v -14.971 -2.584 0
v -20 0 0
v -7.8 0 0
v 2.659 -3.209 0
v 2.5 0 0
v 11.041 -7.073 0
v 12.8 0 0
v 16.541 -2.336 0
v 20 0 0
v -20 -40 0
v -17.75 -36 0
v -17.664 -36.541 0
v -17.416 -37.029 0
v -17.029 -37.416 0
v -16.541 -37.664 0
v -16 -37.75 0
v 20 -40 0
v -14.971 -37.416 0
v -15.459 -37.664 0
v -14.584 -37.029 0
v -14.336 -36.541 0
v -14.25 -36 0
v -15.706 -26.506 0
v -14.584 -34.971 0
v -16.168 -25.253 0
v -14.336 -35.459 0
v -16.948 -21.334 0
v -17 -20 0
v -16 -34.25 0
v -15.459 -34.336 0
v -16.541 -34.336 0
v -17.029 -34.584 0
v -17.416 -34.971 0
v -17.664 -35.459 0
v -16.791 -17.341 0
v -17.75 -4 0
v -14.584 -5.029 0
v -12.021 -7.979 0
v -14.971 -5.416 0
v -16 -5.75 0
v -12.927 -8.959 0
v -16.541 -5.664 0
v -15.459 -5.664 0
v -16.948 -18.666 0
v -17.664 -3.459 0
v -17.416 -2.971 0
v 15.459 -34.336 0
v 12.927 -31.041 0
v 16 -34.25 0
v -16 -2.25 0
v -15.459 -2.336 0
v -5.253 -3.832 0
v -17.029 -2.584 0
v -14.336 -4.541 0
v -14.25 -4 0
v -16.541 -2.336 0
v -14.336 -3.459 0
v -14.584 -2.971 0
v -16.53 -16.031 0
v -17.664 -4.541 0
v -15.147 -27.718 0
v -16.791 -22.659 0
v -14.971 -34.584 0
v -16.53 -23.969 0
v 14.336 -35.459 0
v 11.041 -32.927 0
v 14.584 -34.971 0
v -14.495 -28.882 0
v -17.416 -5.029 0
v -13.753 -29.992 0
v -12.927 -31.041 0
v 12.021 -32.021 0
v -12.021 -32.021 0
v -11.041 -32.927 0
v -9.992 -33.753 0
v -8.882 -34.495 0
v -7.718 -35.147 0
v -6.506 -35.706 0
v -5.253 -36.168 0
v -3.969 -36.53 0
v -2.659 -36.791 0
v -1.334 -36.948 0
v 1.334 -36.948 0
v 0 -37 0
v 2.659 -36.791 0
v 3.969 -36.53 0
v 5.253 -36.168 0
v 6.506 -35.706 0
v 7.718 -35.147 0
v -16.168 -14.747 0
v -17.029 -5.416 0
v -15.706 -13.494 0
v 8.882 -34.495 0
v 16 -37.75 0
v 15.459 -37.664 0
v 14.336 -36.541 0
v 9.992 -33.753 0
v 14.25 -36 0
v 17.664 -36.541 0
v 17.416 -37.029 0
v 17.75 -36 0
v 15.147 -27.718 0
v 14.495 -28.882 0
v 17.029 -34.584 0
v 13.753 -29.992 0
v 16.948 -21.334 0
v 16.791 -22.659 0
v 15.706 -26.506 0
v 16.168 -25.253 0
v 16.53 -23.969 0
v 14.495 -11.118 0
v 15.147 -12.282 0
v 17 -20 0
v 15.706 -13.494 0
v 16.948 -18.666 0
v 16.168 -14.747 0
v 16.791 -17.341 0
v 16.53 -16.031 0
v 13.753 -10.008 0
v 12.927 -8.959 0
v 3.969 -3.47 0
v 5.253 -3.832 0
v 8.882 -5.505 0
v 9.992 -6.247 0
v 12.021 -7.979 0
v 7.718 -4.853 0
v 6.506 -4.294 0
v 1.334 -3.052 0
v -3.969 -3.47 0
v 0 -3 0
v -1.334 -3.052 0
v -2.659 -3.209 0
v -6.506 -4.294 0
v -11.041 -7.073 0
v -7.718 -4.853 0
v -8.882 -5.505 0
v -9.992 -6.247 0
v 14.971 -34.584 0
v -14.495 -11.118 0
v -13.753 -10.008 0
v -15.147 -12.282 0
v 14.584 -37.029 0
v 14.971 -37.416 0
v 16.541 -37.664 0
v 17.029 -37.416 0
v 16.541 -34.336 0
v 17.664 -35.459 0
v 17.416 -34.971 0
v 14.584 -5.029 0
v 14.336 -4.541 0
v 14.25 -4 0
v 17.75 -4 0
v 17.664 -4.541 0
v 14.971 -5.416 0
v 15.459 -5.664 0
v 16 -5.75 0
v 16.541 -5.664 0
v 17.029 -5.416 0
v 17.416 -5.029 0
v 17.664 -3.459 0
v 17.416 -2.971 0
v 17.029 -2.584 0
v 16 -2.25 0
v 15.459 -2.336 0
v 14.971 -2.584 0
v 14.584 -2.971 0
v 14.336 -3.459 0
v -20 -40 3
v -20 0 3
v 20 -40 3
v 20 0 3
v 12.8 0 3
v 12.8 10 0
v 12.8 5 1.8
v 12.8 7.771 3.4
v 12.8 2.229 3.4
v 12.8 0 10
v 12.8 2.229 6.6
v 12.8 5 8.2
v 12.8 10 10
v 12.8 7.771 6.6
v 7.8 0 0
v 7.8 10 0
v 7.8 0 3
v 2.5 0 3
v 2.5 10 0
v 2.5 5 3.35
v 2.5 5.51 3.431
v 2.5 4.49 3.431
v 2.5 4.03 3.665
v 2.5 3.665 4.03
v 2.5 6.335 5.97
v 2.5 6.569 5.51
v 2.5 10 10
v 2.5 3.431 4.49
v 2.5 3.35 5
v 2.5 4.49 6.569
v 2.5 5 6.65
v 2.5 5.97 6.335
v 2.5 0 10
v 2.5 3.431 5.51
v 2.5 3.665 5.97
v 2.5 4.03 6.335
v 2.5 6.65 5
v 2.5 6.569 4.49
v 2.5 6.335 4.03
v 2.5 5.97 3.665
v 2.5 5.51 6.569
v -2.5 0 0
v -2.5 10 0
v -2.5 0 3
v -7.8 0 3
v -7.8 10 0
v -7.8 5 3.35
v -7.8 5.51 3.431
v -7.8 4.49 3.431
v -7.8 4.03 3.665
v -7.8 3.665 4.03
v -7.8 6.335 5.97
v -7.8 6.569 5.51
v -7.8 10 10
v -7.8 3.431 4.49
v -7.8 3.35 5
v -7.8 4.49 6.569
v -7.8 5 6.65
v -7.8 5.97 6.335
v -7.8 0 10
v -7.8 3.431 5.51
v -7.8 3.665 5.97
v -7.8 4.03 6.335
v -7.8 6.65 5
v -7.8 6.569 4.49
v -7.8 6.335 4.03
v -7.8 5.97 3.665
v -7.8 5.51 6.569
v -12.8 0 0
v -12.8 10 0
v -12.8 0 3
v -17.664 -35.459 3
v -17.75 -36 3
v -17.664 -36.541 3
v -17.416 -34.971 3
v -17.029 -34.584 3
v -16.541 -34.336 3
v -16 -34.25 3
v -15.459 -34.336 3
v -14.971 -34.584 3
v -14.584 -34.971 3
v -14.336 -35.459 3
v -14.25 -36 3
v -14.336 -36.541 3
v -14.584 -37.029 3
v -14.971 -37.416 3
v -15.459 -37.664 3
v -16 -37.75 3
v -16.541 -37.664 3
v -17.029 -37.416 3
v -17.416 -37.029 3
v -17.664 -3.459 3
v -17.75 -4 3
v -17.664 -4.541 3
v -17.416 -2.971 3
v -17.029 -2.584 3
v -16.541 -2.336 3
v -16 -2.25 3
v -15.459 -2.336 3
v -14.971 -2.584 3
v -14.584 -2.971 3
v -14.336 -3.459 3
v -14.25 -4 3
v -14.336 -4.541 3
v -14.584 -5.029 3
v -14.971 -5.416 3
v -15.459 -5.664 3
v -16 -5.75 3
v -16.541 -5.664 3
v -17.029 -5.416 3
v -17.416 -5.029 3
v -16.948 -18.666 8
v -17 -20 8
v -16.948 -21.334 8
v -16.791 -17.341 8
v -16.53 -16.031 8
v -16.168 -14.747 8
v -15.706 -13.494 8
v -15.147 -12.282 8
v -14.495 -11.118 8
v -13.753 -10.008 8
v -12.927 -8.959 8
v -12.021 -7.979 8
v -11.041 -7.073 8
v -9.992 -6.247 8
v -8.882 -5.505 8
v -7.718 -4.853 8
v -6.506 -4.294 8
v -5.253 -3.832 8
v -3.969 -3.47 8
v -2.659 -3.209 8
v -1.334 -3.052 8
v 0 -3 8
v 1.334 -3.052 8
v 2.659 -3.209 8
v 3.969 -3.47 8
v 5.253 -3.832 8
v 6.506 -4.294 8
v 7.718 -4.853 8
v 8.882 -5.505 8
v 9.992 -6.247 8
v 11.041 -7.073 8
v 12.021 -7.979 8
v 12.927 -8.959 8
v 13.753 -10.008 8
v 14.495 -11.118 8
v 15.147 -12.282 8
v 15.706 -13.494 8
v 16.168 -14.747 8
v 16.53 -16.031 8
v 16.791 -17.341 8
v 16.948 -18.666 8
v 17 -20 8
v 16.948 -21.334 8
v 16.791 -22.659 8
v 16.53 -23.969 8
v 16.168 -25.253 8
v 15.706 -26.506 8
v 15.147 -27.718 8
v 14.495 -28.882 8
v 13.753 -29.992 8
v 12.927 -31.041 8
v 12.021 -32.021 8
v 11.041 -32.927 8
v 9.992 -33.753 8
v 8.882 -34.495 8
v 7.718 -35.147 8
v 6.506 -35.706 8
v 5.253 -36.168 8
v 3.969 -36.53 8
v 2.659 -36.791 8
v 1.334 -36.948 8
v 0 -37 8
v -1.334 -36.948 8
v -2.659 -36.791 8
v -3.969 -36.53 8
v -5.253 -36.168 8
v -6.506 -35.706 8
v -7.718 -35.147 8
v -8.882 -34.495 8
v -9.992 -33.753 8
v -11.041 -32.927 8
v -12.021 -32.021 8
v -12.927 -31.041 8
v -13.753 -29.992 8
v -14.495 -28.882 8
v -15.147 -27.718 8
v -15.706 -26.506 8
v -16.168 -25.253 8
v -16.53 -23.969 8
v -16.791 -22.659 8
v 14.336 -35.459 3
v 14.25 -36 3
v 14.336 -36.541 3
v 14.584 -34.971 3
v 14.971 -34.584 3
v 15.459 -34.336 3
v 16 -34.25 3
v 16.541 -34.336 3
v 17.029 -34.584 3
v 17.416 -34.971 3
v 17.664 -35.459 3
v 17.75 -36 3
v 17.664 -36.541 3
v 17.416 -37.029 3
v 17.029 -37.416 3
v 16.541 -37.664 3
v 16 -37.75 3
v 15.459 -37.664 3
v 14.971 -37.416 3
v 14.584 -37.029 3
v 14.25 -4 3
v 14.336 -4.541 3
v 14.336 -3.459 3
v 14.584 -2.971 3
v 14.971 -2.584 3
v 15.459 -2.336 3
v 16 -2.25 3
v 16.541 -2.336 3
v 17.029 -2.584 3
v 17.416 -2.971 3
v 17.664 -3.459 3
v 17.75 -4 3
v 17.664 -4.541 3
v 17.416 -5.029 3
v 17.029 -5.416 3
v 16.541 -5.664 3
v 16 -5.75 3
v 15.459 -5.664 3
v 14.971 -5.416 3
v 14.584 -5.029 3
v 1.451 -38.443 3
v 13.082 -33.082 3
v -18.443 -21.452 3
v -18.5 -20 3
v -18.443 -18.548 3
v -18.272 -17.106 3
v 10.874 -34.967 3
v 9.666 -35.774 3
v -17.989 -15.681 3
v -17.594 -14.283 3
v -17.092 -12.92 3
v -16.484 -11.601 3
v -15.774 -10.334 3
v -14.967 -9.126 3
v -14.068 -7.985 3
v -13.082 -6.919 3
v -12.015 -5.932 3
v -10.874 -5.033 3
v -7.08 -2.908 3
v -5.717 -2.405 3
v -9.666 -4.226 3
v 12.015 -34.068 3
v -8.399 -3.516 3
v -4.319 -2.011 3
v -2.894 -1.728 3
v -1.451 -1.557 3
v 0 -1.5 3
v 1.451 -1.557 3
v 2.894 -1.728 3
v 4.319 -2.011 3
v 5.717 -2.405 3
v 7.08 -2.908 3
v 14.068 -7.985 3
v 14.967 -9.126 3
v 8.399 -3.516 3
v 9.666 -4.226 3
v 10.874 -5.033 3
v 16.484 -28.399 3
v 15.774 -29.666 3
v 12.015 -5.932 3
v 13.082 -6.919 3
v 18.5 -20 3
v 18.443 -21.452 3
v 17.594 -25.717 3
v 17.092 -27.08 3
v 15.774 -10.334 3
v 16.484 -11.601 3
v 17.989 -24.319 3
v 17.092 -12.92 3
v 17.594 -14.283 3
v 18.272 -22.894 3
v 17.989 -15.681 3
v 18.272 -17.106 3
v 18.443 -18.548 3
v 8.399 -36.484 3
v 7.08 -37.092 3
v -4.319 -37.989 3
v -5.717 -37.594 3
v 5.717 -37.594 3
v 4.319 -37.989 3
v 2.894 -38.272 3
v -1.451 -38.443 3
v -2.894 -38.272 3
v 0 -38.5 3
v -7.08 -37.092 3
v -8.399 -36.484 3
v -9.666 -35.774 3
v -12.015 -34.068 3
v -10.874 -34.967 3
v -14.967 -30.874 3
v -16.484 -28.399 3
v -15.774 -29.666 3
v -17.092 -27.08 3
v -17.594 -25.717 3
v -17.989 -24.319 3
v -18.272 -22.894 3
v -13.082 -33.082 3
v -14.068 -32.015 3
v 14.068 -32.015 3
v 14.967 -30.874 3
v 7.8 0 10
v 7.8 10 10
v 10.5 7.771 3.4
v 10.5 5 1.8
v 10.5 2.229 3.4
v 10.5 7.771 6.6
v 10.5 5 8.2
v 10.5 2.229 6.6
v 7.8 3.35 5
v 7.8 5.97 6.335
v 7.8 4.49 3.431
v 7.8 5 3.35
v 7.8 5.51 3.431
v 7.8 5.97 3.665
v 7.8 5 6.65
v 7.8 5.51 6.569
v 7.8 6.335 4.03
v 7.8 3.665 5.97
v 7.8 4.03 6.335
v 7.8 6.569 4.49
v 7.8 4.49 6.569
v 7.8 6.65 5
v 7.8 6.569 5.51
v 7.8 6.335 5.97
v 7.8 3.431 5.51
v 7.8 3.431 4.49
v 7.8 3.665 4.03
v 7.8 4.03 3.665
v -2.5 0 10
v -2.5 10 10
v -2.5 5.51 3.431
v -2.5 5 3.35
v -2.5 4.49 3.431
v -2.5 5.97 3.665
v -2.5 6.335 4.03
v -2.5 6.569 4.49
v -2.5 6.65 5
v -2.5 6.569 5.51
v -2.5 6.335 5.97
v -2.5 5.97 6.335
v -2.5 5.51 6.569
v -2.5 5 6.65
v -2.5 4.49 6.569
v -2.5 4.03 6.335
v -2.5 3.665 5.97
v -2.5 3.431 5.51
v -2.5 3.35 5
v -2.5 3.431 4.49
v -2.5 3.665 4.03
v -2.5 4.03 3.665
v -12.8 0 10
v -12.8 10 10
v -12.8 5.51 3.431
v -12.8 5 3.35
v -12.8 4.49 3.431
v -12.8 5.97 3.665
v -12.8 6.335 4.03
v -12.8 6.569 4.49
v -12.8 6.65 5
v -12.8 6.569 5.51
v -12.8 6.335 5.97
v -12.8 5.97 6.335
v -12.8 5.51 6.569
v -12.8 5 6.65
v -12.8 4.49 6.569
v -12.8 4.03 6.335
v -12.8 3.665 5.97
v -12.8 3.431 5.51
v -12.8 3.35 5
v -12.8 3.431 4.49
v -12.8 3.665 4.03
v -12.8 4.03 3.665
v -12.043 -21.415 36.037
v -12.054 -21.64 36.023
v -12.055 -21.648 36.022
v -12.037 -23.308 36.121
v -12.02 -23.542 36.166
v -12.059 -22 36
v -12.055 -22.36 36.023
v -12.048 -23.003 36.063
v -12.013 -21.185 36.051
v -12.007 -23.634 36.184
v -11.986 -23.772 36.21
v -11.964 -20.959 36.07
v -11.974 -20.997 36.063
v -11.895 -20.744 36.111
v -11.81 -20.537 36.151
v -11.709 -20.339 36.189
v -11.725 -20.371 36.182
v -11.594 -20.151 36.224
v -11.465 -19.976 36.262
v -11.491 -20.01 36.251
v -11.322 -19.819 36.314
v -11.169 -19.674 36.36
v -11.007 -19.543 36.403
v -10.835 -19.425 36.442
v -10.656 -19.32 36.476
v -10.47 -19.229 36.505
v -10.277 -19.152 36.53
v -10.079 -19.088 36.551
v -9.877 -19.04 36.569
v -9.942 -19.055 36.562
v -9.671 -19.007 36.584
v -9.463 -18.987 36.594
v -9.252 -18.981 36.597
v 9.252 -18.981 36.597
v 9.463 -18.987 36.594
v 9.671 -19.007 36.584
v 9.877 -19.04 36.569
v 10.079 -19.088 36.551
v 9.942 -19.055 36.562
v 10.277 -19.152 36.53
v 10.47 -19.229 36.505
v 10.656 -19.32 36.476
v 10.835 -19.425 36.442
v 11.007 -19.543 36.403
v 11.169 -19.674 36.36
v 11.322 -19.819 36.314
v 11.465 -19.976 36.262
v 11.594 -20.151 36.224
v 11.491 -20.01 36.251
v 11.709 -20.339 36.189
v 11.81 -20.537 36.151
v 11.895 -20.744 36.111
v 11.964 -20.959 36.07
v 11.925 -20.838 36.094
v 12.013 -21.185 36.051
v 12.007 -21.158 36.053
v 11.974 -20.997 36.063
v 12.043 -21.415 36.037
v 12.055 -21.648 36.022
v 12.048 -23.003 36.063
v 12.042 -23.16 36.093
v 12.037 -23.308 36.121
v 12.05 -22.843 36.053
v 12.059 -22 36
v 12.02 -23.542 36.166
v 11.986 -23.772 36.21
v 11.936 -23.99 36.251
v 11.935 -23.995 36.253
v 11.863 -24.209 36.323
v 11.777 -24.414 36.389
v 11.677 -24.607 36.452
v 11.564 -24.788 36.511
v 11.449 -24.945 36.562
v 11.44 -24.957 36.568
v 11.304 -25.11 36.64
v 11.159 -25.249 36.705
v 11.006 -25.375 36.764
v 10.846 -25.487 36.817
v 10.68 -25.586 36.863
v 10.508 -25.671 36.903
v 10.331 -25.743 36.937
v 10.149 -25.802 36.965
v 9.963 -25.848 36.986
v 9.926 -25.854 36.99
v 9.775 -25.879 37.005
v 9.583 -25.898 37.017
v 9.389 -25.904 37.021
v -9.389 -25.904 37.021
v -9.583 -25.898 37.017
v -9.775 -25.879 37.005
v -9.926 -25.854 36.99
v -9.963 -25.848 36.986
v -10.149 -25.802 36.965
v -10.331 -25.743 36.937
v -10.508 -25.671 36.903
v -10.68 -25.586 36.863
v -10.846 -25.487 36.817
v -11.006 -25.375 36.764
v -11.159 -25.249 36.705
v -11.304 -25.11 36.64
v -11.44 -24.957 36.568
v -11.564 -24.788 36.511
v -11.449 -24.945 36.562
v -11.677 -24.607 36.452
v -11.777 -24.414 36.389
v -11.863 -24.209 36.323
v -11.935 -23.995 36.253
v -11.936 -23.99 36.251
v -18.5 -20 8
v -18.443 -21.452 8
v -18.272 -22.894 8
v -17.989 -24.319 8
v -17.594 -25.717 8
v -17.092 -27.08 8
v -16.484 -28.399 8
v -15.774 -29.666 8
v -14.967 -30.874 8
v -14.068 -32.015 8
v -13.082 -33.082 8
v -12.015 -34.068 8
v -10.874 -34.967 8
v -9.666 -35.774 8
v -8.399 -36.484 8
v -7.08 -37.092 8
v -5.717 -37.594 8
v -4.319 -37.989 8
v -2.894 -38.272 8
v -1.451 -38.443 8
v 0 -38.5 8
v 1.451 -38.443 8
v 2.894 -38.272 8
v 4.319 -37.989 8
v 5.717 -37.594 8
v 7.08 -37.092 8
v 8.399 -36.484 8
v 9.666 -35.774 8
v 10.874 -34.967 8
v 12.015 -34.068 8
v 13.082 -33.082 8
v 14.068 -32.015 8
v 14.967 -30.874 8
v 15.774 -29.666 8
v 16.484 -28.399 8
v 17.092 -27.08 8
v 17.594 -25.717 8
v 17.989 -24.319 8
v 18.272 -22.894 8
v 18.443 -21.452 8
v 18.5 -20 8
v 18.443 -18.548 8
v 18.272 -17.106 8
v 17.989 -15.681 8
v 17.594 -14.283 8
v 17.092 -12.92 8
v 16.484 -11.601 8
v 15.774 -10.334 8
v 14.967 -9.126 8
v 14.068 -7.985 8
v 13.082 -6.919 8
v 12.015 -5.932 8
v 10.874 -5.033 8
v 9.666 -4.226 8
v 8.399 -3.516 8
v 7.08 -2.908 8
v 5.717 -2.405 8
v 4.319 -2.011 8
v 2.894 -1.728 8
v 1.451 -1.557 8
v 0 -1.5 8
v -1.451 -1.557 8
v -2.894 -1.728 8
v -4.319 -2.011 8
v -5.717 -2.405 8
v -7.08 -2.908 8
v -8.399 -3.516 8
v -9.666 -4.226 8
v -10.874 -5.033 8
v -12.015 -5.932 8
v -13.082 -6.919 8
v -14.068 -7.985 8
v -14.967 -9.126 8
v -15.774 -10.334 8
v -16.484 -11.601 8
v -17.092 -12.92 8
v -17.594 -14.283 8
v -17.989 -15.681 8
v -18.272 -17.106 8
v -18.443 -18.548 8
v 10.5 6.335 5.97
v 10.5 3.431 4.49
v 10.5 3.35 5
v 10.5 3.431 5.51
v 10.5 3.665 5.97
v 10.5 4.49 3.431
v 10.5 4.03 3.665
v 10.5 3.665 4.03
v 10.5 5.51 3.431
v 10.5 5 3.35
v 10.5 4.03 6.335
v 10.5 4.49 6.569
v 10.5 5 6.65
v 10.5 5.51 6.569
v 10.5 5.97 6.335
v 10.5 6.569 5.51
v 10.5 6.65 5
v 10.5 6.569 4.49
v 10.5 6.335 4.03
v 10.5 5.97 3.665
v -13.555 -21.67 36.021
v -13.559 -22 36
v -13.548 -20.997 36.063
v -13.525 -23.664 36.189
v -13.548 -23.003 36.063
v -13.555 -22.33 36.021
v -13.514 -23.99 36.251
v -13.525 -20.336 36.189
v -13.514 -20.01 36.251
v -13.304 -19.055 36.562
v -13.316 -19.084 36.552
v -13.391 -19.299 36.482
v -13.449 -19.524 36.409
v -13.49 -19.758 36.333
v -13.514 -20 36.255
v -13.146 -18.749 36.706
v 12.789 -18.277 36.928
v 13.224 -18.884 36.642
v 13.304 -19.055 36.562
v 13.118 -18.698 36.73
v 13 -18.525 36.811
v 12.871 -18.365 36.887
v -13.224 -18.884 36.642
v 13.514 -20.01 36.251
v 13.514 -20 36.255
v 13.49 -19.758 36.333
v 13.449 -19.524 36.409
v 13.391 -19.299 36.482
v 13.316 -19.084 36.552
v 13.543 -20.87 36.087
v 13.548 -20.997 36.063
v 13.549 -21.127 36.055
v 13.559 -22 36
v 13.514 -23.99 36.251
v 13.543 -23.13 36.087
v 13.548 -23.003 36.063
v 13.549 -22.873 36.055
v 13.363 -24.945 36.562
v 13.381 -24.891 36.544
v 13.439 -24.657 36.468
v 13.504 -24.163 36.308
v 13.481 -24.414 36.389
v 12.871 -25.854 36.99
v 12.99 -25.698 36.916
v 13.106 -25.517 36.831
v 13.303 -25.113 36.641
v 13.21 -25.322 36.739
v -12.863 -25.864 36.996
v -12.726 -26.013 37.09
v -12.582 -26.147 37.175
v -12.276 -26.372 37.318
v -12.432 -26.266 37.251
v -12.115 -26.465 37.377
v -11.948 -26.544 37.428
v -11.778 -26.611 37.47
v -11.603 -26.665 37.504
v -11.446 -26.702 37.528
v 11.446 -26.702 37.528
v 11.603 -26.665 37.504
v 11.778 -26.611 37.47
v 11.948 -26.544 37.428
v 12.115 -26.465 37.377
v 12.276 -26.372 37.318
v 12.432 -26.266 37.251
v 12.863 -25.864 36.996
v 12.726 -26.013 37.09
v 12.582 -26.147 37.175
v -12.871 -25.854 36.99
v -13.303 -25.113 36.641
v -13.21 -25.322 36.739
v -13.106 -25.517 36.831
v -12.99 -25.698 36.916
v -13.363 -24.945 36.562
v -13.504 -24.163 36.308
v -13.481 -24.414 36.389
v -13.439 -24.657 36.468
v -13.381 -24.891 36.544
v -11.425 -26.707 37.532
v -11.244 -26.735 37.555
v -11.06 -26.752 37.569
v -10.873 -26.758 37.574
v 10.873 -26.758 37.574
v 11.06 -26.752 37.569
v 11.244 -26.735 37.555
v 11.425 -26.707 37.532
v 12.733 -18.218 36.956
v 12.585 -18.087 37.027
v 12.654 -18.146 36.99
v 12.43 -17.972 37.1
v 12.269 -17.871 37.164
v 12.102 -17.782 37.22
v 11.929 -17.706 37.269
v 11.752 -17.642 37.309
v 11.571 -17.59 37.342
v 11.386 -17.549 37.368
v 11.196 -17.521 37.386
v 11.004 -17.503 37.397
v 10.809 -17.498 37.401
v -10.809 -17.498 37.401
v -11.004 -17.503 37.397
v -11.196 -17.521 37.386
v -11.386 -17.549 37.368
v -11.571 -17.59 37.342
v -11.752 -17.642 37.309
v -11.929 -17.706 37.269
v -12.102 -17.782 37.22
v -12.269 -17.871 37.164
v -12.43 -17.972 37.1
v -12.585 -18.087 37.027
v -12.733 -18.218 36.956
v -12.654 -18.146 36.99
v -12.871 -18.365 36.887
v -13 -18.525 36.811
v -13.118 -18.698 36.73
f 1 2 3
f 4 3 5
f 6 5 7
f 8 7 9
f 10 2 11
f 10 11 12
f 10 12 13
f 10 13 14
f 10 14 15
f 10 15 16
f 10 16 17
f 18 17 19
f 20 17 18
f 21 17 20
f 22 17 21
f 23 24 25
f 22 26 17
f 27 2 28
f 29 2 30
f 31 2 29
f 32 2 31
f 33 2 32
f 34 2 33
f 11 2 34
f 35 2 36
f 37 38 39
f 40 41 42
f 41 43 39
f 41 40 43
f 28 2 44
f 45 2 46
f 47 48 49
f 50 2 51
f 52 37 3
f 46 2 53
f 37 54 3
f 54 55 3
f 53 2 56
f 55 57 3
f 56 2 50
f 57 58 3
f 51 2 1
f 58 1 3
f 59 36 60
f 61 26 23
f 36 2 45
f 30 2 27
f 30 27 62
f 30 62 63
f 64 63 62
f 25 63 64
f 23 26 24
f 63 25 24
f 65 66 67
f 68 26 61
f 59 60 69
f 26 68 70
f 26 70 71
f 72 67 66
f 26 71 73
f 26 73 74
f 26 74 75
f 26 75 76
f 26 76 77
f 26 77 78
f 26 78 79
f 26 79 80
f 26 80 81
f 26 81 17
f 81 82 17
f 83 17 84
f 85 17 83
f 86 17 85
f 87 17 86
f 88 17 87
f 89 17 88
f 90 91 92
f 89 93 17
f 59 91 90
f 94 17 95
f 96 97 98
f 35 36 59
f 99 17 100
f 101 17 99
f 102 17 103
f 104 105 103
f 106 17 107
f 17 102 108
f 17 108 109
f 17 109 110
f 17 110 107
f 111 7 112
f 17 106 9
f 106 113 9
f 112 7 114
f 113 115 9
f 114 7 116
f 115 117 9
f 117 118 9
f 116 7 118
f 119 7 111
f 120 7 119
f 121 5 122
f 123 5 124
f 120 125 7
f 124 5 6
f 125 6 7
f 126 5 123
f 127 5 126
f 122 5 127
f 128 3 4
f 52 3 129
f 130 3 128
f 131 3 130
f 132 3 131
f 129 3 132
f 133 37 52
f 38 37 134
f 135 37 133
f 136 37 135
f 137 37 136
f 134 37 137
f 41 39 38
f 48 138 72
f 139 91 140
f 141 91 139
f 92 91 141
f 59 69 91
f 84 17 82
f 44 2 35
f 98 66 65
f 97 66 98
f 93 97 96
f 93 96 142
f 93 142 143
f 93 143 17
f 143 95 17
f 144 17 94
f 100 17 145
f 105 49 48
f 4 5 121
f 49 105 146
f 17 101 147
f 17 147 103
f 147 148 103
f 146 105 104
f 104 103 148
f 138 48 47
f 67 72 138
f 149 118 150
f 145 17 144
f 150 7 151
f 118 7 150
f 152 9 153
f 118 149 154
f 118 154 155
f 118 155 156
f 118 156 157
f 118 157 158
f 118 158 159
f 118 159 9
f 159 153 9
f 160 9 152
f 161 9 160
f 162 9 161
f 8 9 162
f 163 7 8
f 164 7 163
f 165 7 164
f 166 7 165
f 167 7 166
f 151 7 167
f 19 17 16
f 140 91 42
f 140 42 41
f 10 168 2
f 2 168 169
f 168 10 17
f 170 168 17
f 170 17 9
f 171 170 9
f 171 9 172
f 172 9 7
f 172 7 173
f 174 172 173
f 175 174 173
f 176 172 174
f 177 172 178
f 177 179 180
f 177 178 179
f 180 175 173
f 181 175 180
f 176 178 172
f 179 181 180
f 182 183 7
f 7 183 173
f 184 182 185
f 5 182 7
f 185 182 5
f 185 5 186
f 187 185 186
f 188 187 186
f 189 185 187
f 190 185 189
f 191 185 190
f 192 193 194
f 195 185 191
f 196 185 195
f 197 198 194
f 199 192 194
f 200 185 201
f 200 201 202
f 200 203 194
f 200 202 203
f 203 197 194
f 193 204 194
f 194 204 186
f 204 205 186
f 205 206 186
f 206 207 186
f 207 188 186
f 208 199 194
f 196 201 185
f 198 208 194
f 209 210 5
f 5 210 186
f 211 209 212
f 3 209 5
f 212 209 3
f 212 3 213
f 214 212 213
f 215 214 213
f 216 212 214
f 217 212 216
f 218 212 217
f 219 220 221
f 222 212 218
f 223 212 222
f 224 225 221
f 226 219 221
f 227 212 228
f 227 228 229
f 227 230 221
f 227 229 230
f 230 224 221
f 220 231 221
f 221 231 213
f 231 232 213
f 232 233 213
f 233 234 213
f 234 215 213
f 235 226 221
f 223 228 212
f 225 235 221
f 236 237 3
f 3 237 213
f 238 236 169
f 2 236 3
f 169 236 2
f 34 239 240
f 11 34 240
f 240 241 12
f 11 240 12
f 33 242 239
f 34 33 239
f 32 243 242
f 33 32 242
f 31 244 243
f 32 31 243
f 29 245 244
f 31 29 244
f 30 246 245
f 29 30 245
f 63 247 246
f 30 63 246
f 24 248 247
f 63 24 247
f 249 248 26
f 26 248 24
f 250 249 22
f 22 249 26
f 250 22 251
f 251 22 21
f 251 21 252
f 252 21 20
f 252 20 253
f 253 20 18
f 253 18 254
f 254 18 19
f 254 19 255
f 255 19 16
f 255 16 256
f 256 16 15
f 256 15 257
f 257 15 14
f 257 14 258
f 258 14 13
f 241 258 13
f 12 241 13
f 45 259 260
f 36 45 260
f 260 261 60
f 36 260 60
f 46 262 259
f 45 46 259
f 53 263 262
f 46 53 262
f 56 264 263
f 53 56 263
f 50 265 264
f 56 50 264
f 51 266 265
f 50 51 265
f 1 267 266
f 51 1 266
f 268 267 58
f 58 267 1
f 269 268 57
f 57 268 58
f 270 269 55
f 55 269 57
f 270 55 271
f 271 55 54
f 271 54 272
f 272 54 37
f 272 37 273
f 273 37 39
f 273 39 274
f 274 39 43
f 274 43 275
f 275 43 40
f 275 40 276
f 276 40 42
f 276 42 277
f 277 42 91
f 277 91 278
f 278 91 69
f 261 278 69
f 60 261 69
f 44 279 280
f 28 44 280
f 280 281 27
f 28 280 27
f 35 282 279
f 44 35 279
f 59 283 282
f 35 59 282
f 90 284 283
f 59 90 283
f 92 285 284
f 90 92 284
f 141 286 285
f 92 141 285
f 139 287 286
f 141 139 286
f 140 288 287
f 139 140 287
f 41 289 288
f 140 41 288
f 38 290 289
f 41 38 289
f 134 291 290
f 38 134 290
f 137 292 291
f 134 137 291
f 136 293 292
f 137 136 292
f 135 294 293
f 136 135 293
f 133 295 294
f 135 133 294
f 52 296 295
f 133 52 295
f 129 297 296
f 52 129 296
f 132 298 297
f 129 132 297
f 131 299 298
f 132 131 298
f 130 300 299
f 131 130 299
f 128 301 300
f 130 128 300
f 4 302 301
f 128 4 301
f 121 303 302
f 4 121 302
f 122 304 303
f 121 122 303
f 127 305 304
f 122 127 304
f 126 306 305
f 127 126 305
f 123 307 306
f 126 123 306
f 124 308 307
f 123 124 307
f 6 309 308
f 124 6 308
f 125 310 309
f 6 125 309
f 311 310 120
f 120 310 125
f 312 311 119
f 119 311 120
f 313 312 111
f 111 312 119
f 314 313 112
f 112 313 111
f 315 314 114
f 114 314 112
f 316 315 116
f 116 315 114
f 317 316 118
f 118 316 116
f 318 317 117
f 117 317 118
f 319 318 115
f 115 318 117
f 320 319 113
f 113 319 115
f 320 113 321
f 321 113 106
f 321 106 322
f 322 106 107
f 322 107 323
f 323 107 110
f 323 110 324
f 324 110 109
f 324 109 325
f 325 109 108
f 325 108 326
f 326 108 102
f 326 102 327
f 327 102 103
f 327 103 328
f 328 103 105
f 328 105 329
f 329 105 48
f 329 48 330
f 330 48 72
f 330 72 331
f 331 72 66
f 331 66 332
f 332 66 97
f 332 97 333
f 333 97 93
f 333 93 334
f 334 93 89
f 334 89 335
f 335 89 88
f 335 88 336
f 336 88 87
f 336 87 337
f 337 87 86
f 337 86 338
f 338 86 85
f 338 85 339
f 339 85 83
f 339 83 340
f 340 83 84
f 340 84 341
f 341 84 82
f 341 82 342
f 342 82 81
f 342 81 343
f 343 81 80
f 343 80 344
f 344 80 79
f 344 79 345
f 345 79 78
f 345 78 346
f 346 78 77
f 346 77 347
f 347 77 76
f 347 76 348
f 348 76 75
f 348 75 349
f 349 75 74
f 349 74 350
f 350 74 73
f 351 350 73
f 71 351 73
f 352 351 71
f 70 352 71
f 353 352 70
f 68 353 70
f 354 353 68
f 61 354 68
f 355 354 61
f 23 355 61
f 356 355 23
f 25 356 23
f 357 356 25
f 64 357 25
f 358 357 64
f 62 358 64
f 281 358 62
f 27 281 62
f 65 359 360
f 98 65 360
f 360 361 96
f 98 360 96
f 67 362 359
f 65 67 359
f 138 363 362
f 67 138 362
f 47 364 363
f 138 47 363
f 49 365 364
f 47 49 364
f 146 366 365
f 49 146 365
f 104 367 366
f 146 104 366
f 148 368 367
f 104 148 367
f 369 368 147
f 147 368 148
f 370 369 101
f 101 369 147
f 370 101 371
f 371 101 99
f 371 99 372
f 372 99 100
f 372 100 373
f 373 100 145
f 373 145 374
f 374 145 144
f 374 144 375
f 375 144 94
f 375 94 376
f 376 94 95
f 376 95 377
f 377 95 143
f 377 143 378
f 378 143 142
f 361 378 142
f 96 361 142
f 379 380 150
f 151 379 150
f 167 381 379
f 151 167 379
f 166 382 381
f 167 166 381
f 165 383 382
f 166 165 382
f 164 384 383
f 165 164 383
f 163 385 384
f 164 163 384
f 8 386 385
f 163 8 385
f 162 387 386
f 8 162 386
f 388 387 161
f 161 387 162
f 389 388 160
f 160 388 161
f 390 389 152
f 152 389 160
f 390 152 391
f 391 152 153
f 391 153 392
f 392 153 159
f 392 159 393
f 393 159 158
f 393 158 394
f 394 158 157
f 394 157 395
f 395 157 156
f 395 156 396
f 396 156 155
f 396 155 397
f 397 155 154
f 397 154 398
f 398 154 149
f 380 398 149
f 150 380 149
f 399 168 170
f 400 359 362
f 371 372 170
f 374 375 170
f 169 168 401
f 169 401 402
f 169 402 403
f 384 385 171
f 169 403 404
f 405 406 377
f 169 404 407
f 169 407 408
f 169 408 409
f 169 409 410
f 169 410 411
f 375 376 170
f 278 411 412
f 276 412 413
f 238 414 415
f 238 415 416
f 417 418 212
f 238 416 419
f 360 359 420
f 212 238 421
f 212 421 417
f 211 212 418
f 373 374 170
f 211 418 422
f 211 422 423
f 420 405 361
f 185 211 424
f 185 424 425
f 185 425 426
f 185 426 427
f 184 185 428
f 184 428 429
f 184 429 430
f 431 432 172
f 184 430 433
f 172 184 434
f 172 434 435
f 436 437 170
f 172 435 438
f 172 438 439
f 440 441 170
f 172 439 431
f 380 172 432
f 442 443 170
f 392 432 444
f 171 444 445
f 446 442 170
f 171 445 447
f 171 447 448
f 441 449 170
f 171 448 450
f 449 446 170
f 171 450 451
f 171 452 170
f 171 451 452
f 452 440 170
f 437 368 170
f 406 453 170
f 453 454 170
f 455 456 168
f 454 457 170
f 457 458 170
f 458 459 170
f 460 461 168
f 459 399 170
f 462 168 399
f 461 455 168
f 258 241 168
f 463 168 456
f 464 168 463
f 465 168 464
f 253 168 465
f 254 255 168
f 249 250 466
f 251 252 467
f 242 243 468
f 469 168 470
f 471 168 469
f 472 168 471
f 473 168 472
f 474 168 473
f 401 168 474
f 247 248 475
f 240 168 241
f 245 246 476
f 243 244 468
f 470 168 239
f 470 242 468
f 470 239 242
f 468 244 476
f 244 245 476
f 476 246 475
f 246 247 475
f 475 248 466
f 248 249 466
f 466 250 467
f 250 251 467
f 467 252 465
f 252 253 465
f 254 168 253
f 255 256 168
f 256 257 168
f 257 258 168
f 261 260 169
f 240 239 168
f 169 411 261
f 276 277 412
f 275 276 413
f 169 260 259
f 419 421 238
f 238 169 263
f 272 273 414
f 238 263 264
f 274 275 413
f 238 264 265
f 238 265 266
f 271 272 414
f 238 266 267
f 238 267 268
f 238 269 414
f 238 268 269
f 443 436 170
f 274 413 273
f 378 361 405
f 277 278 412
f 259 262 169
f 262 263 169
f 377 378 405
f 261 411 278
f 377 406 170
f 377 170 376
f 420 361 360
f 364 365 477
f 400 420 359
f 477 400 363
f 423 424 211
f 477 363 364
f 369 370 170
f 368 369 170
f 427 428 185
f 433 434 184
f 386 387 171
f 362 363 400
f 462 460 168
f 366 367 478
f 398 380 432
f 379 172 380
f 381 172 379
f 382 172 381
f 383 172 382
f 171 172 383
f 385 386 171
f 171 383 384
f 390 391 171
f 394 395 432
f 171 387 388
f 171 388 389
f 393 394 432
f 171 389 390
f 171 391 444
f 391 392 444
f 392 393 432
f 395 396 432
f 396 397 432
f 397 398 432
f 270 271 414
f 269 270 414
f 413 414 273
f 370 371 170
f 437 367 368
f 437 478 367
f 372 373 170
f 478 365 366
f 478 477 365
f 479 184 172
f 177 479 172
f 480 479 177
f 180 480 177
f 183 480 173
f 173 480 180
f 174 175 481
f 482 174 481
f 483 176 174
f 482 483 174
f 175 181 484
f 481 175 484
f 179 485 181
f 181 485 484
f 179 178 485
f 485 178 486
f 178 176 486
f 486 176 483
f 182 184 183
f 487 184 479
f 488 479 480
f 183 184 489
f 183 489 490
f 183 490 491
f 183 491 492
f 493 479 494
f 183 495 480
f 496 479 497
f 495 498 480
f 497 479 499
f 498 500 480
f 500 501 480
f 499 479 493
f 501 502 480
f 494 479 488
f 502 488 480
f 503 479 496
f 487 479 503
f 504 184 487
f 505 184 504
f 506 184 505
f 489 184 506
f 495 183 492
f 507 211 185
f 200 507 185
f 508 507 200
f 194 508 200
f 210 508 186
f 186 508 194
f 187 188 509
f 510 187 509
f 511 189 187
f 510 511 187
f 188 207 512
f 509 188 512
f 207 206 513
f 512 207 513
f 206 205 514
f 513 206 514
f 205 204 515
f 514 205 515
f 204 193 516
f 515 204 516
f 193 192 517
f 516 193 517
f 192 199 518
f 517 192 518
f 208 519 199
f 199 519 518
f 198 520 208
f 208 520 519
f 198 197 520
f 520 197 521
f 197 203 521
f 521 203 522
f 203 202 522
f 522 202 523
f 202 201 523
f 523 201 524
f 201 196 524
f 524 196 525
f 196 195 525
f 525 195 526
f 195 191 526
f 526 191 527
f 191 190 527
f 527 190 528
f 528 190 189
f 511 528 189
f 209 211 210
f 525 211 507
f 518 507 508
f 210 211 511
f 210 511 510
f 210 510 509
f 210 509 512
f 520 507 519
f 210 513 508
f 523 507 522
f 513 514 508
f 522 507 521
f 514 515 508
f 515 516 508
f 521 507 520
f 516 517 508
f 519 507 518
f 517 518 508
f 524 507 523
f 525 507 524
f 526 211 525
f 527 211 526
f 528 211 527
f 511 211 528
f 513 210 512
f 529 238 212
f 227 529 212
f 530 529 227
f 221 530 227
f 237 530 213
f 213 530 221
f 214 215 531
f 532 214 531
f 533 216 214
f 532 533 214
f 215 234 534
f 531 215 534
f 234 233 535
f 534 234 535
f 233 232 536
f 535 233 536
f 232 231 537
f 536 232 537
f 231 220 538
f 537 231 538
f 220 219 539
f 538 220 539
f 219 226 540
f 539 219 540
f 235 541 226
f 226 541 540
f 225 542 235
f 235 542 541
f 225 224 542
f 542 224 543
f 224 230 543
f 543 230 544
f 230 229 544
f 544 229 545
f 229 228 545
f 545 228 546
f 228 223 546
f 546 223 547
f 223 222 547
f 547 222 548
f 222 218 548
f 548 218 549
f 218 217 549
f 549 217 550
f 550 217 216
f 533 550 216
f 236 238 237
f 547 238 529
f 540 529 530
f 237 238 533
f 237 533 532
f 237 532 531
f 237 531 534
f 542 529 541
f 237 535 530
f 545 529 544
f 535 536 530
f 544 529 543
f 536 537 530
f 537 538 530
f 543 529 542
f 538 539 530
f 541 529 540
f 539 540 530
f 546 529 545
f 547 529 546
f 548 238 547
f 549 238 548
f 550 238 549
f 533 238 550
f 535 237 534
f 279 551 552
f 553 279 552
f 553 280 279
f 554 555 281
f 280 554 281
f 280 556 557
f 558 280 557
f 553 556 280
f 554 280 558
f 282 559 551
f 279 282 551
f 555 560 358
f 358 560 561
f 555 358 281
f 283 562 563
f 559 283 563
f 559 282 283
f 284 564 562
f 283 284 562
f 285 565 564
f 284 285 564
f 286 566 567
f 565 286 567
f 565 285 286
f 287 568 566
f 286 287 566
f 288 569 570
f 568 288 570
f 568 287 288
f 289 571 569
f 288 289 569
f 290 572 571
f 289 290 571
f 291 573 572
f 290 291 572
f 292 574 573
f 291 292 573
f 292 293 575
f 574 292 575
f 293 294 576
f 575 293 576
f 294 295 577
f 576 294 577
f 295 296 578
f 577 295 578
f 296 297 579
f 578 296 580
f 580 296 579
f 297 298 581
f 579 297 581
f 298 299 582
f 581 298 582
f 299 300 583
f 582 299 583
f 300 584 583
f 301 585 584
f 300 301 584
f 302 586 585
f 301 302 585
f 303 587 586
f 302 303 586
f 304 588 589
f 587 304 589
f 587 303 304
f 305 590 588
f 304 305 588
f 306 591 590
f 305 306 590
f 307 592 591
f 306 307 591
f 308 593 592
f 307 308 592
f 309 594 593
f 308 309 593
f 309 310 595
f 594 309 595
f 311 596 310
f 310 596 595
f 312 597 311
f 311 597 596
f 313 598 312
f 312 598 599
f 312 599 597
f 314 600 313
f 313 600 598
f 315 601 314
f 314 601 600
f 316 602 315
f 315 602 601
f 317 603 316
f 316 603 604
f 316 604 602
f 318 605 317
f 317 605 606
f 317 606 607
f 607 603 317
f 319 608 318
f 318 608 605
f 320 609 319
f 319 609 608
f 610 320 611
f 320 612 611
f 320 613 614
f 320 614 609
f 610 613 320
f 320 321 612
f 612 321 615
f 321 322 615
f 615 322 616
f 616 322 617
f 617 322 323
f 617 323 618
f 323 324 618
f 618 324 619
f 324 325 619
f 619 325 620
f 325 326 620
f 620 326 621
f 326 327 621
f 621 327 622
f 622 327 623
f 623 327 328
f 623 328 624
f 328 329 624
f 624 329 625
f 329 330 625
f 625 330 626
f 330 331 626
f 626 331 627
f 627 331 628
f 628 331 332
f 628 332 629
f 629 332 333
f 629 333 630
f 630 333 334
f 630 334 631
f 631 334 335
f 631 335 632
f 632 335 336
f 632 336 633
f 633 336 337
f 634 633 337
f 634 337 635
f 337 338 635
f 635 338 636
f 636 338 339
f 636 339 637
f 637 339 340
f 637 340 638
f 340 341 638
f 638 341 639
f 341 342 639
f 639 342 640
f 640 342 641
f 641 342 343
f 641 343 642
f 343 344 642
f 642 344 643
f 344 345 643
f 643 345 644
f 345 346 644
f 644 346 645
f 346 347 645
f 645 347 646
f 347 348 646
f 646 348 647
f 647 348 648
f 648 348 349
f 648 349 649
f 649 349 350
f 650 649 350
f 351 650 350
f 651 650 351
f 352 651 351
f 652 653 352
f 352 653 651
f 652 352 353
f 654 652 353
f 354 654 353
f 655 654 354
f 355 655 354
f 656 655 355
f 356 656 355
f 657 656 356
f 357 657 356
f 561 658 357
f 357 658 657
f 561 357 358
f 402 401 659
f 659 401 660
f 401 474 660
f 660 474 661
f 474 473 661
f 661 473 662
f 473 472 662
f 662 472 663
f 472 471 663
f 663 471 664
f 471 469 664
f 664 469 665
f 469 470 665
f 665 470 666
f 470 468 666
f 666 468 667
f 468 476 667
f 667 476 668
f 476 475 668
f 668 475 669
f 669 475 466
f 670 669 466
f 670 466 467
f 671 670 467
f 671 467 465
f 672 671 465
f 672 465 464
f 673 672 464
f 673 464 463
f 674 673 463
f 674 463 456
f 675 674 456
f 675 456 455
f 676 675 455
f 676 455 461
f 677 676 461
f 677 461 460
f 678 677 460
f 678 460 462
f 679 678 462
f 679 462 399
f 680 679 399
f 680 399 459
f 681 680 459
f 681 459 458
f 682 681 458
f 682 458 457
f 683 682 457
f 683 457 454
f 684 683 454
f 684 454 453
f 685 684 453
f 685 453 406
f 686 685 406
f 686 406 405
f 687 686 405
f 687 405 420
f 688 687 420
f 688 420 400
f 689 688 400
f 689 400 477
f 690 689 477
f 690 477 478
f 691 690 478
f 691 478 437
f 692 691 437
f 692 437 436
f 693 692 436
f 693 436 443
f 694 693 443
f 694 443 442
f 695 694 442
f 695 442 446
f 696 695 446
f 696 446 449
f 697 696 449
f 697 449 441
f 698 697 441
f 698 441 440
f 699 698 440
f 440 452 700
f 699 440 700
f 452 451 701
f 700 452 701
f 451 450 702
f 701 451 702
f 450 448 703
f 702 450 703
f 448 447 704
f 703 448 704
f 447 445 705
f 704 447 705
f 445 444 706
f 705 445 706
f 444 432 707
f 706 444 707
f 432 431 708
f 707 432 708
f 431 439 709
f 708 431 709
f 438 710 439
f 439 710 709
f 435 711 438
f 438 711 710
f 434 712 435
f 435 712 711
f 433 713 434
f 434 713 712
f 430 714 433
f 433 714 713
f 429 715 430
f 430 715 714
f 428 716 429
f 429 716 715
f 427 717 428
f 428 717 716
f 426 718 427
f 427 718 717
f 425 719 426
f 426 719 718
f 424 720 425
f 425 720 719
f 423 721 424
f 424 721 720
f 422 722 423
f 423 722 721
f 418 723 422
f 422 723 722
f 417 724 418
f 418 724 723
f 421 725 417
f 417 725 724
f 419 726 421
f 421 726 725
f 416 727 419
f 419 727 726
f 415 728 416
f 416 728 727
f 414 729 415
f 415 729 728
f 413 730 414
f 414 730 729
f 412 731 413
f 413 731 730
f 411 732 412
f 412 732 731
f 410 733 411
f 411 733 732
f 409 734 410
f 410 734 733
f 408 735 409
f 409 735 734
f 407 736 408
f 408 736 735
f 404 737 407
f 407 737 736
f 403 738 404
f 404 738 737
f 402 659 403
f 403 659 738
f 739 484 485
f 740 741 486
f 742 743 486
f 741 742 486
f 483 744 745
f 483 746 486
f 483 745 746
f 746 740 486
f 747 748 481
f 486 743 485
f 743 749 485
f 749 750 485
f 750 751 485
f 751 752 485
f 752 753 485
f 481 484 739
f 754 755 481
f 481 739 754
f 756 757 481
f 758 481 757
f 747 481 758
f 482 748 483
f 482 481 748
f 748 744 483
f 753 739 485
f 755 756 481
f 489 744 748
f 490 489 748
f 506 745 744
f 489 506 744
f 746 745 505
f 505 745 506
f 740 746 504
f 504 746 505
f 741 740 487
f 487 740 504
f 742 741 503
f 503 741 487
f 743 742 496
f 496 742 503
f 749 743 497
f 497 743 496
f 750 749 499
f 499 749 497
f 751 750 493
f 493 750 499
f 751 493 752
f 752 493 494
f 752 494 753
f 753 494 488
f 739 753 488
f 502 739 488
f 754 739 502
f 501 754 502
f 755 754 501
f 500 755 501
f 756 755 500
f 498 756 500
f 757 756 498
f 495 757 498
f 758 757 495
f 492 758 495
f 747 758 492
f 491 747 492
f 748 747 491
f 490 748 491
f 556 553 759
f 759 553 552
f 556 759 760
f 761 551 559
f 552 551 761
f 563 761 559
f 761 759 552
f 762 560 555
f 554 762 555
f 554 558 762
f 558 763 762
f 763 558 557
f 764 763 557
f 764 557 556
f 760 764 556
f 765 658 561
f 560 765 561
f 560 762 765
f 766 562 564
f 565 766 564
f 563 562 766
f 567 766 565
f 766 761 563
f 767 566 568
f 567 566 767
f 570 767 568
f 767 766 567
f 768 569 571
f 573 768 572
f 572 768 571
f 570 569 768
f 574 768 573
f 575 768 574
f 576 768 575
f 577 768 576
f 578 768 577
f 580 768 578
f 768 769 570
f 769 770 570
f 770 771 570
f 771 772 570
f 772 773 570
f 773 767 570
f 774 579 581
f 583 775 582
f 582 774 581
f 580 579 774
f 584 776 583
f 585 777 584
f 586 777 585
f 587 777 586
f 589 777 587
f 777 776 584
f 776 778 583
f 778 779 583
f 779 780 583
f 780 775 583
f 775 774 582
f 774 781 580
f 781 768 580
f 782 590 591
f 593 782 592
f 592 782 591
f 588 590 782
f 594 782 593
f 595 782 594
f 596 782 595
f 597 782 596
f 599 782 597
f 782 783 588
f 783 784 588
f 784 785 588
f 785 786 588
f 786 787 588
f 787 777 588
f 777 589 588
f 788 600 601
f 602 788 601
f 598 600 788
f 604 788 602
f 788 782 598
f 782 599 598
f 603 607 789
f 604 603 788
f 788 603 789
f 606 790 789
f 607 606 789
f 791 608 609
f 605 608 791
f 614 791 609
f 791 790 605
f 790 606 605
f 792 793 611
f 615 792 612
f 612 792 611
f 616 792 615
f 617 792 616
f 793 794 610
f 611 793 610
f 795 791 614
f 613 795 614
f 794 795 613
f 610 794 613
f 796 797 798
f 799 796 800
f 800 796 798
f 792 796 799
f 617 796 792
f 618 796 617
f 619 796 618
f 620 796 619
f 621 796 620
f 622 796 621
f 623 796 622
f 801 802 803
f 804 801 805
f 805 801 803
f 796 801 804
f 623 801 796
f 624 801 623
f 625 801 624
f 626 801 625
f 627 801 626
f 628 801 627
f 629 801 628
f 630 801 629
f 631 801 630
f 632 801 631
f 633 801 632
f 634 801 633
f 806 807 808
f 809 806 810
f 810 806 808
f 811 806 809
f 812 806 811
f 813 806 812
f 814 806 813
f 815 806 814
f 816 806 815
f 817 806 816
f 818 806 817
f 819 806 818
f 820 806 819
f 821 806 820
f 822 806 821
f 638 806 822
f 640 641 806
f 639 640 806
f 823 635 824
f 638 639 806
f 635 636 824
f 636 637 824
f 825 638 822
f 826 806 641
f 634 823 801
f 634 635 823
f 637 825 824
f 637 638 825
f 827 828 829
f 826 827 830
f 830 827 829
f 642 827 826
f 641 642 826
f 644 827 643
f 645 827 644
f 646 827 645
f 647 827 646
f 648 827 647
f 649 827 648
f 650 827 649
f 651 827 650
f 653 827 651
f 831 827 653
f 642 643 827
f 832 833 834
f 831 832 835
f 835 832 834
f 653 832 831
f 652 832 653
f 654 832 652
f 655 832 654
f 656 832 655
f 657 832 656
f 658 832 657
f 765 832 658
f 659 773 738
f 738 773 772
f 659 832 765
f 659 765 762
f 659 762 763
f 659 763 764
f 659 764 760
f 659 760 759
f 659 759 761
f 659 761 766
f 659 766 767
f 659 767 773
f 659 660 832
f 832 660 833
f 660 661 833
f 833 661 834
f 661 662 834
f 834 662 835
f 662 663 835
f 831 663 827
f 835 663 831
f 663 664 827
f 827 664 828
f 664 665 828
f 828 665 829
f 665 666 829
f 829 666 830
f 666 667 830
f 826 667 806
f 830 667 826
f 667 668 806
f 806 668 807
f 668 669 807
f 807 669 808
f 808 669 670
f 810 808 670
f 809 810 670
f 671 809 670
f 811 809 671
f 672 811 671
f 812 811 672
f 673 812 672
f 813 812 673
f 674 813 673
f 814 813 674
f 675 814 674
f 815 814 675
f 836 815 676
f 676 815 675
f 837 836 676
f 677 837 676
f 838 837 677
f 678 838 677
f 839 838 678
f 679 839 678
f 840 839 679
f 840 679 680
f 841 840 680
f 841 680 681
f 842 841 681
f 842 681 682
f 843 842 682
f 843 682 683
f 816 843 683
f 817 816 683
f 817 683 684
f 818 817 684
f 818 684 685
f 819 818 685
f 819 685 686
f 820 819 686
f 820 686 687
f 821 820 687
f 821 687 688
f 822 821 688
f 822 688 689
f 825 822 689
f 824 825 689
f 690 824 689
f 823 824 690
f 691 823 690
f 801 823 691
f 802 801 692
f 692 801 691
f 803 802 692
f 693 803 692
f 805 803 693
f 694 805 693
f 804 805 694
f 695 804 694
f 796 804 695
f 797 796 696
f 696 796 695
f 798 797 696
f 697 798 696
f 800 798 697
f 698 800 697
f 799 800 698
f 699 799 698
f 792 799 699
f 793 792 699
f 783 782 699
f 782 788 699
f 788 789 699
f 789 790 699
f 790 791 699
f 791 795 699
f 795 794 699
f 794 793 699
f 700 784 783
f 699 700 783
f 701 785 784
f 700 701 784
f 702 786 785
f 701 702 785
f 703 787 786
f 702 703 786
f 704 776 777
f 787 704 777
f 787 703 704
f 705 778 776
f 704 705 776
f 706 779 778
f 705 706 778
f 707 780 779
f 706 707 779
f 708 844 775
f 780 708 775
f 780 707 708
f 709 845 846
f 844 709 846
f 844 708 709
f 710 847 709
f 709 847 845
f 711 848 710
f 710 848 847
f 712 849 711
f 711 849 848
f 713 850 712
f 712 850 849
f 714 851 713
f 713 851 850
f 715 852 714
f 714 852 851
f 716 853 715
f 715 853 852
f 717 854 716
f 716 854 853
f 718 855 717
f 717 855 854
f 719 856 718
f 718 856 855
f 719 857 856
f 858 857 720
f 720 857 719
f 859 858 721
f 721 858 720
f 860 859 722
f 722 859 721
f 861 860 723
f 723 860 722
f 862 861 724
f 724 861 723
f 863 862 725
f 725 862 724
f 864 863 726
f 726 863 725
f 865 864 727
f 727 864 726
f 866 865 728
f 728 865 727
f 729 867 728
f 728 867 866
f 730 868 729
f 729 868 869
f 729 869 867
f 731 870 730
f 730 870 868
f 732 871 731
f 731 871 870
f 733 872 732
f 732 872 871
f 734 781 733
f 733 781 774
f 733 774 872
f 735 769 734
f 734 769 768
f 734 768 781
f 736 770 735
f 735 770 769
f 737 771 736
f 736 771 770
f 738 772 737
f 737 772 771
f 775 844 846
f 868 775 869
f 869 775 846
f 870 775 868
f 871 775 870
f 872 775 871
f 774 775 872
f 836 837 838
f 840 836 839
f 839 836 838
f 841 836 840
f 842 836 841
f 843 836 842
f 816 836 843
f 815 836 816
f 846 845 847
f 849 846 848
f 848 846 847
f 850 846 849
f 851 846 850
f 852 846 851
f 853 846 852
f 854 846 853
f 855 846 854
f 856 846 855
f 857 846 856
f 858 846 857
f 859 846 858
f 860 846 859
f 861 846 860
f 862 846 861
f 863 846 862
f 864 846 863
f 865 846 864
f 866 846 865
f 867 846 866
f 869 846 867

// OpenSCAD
// file: obiscad/attach.scad
//---------------------------------------------------------------
//-- Openscad Attachment library
//-- Attach parts easily. Make your designs more reusable and clean
//---------------------------------------------------------------
//-- This is a component of the obiscad opescad tools by Obijuan
//-- (C) Juan Gonzalez-Gomez (Obijuan)
//-- Sep-2012
//---------------------------------------------------------------
//-- Released under the GPL license
//---------------------------------------------------------------

use <vector.scad>

//--------------------------------------------------------------------
//-- Draw a connector
//-- A connector is defined a 3-tuple that consist of a point
//--- (the attachment point), and axis (the attachment axis) and
//--- an angle the connected part should be rotate around the 
//--  attachment axis
//--
//--- Input parameters:
//--
//--  Connector c = [p , n, ang] where:
//--
//--     p : The attachment point
//--     v : The attachment axis
//--   ang : the angle
//--------------------------------------------------------------------
module connector(c)
{
  //-- Get the three components from the connector
  p = c[0];
  v = c[1];
  ang = c[2];

  //-- Draw the attachment poing
  color("Gray") point(p);

  //-- Draw the attachment axis vector (with a mark)
  translate(p)
    rotate(a=ang, v=v)
    color("Gray") vector(unitv(v)*6, l_arrow=2, mark=true);
}


//-------------------------------------------------------------------------
//--  ATTACH OPERATOR
//--  This operator applies the necesary transformations to the 
//--  child (attachable part) so that it is attached to the main part
//--  
//--  Parameters
//--    a -> Connector of the main part
//--    b -> Connector of the attachable part
//-------------------------------------------------------------------------
module attach(a,b)
{
  //-- Get the data from the connectors
  pos1 = a[0];  //-- Attachment point. Main part
  v    = a[1];  //-- Attachment axis. Main part
  roll = a[2];  //-- Rolling angle
  
  pos2 = b[0];  //-- Attachment point. Attachable part
  vref = b[1];  //-- Atachment axis. Attachable part
                //-- The rolling angle of the attachable part is not used

  //-------- Calculations for the "orientate operator"------
  //-- Calculate the rotation axis
  raxis = cross(vref,v);
    
  //-- Calculate the angle between the vectors
  ang = anglev(vref,v);
  //--------------------------------------------------------.-

  //-- Apply the transformations to the child ---------------------------

  //-- Place the attachable part on the main part attachment point
  translate(pos1)
    //-- Orientate operator. Apply the orientation so that
    //-- both attachment axis are paralell. Also apply the roll angle
    rotate(a=roll, v=v)  rotate(a=ang, v=raxis)
      //-- Attachable part to the origin
      translate(-pos2)
	child(0); 
}


//--------------------------------------------------------------------
//---   An example of the attach operator
//---  
//---  There are two parts: the main body and an arm
//---  They both are cubes (for simplicity)
//---
//--   In the main body there are 2 connectors defined, so that
//--  the arm can be attached to any of them (or both if you like)
//------------------------------------------------------------------

//-- In the debug mode the connectors and additional information
//-- are shown
debug=true;

//-- Define the Main part: A cube
//-- Two attachment points are defined: one on the top, another in the
//--- left side
size = [10,10,10];

//-- Connectors defined:

//--     Att. point       Att. Axis  Roll
c1 = [ [0,0,size[2]/2],  [0,0,1],     20];  //-- Connector on the top
c2 = [ [-size[0]/2,0,0], [-1,0,0],    90];  //-- Connector on the left


//-- Draw the main part along with the connectors (for debugging)
cube(size,center=true);

//-- In debug mode: Draw the main part connectors!
if (debug) {
  connector(c1);
  connector(c2);
}

//-- Define the Attachable part. It is another cube, with one connector
asize = [5,20,3];
a = [ [0,asize[1]/2-3,-asize[2]/2], [0,0,1], 0  ];


//-- Do the attach!
//-- Just change c1 by c2 to attach the part to the other 
//-- connector. Super-easy!! :-)
//-- Modify the c1 and c2 roll angle for rotating the attachable
//--  part to the desired orientation
attach(c1,a)
  //-- This is the attachable part! 
  union() {
    cube(asize,center=true);  //-- The part

    //-- In debug mode show additional info:
    if (debug) {
      frame(l=10);    //-- The part frame of reference.
      connector(a);   //-- Show the part connector
    }
  };

  
// main file
use <obiscad/bevel.scad>
use <obiscad/attach.scad>
use <MCAD/nuts_and_bolts.scad>

module fan_pad(nut = false){
rotate([0,-90,0])
difference(){
if(nut){
cube([10,10,5]);
}else{
cube([10,10,5]);
}
translate([5,5])cylinder(r=3.3/2,h=6,$fn=20);
if (nut)
#translate([5,5,-0.1])nutHole(3);

}



}

difference(){
translate([-20,-40,0])cube([40,40,3]);
translate([-16,-4,-1])cylinder(r=3.5/2,h=6,$fn=20);
translate([16,-4,-1])cylinder(r=3.5/2,h=6,$fn=20);
translate([-16,-36,-1])cylinder(r=3.5/2,h=6,$fn=20);
translate([16,-36,-1])cylinder(r=3.5/2,h=6,$fn=20);
translate([0,-20,-1])cylinder(r=37/2,h=6,$fn=80);

}
difference(){
difference(){
hull(){
translate([0,-20,0])cylinder(r=37/2,h=8,$fn=80);
translate([-12.5,-25,32])cube([25,5,10]);
}
hull(){
translate([0,-20,0])cylinder(r=37/2-1.5,h=8,$fn=80);
translate([-12.5+1.5,-42+1.5+15+1.5,32])cube([25-3,5-3,10]);
//translate([-27/2,-27-1.5,7])cube([27,27,10]);
}
}
#translate([-30,-22,44])rotate([0,90,0])cylinder(r=8,h=50,$fn=50);
}

translate([2.5,0])fan_pad();
translate([2.5+5.3+5,0])fan_pad(true);
translate([-2.5-5.3,0])fan_pad();
